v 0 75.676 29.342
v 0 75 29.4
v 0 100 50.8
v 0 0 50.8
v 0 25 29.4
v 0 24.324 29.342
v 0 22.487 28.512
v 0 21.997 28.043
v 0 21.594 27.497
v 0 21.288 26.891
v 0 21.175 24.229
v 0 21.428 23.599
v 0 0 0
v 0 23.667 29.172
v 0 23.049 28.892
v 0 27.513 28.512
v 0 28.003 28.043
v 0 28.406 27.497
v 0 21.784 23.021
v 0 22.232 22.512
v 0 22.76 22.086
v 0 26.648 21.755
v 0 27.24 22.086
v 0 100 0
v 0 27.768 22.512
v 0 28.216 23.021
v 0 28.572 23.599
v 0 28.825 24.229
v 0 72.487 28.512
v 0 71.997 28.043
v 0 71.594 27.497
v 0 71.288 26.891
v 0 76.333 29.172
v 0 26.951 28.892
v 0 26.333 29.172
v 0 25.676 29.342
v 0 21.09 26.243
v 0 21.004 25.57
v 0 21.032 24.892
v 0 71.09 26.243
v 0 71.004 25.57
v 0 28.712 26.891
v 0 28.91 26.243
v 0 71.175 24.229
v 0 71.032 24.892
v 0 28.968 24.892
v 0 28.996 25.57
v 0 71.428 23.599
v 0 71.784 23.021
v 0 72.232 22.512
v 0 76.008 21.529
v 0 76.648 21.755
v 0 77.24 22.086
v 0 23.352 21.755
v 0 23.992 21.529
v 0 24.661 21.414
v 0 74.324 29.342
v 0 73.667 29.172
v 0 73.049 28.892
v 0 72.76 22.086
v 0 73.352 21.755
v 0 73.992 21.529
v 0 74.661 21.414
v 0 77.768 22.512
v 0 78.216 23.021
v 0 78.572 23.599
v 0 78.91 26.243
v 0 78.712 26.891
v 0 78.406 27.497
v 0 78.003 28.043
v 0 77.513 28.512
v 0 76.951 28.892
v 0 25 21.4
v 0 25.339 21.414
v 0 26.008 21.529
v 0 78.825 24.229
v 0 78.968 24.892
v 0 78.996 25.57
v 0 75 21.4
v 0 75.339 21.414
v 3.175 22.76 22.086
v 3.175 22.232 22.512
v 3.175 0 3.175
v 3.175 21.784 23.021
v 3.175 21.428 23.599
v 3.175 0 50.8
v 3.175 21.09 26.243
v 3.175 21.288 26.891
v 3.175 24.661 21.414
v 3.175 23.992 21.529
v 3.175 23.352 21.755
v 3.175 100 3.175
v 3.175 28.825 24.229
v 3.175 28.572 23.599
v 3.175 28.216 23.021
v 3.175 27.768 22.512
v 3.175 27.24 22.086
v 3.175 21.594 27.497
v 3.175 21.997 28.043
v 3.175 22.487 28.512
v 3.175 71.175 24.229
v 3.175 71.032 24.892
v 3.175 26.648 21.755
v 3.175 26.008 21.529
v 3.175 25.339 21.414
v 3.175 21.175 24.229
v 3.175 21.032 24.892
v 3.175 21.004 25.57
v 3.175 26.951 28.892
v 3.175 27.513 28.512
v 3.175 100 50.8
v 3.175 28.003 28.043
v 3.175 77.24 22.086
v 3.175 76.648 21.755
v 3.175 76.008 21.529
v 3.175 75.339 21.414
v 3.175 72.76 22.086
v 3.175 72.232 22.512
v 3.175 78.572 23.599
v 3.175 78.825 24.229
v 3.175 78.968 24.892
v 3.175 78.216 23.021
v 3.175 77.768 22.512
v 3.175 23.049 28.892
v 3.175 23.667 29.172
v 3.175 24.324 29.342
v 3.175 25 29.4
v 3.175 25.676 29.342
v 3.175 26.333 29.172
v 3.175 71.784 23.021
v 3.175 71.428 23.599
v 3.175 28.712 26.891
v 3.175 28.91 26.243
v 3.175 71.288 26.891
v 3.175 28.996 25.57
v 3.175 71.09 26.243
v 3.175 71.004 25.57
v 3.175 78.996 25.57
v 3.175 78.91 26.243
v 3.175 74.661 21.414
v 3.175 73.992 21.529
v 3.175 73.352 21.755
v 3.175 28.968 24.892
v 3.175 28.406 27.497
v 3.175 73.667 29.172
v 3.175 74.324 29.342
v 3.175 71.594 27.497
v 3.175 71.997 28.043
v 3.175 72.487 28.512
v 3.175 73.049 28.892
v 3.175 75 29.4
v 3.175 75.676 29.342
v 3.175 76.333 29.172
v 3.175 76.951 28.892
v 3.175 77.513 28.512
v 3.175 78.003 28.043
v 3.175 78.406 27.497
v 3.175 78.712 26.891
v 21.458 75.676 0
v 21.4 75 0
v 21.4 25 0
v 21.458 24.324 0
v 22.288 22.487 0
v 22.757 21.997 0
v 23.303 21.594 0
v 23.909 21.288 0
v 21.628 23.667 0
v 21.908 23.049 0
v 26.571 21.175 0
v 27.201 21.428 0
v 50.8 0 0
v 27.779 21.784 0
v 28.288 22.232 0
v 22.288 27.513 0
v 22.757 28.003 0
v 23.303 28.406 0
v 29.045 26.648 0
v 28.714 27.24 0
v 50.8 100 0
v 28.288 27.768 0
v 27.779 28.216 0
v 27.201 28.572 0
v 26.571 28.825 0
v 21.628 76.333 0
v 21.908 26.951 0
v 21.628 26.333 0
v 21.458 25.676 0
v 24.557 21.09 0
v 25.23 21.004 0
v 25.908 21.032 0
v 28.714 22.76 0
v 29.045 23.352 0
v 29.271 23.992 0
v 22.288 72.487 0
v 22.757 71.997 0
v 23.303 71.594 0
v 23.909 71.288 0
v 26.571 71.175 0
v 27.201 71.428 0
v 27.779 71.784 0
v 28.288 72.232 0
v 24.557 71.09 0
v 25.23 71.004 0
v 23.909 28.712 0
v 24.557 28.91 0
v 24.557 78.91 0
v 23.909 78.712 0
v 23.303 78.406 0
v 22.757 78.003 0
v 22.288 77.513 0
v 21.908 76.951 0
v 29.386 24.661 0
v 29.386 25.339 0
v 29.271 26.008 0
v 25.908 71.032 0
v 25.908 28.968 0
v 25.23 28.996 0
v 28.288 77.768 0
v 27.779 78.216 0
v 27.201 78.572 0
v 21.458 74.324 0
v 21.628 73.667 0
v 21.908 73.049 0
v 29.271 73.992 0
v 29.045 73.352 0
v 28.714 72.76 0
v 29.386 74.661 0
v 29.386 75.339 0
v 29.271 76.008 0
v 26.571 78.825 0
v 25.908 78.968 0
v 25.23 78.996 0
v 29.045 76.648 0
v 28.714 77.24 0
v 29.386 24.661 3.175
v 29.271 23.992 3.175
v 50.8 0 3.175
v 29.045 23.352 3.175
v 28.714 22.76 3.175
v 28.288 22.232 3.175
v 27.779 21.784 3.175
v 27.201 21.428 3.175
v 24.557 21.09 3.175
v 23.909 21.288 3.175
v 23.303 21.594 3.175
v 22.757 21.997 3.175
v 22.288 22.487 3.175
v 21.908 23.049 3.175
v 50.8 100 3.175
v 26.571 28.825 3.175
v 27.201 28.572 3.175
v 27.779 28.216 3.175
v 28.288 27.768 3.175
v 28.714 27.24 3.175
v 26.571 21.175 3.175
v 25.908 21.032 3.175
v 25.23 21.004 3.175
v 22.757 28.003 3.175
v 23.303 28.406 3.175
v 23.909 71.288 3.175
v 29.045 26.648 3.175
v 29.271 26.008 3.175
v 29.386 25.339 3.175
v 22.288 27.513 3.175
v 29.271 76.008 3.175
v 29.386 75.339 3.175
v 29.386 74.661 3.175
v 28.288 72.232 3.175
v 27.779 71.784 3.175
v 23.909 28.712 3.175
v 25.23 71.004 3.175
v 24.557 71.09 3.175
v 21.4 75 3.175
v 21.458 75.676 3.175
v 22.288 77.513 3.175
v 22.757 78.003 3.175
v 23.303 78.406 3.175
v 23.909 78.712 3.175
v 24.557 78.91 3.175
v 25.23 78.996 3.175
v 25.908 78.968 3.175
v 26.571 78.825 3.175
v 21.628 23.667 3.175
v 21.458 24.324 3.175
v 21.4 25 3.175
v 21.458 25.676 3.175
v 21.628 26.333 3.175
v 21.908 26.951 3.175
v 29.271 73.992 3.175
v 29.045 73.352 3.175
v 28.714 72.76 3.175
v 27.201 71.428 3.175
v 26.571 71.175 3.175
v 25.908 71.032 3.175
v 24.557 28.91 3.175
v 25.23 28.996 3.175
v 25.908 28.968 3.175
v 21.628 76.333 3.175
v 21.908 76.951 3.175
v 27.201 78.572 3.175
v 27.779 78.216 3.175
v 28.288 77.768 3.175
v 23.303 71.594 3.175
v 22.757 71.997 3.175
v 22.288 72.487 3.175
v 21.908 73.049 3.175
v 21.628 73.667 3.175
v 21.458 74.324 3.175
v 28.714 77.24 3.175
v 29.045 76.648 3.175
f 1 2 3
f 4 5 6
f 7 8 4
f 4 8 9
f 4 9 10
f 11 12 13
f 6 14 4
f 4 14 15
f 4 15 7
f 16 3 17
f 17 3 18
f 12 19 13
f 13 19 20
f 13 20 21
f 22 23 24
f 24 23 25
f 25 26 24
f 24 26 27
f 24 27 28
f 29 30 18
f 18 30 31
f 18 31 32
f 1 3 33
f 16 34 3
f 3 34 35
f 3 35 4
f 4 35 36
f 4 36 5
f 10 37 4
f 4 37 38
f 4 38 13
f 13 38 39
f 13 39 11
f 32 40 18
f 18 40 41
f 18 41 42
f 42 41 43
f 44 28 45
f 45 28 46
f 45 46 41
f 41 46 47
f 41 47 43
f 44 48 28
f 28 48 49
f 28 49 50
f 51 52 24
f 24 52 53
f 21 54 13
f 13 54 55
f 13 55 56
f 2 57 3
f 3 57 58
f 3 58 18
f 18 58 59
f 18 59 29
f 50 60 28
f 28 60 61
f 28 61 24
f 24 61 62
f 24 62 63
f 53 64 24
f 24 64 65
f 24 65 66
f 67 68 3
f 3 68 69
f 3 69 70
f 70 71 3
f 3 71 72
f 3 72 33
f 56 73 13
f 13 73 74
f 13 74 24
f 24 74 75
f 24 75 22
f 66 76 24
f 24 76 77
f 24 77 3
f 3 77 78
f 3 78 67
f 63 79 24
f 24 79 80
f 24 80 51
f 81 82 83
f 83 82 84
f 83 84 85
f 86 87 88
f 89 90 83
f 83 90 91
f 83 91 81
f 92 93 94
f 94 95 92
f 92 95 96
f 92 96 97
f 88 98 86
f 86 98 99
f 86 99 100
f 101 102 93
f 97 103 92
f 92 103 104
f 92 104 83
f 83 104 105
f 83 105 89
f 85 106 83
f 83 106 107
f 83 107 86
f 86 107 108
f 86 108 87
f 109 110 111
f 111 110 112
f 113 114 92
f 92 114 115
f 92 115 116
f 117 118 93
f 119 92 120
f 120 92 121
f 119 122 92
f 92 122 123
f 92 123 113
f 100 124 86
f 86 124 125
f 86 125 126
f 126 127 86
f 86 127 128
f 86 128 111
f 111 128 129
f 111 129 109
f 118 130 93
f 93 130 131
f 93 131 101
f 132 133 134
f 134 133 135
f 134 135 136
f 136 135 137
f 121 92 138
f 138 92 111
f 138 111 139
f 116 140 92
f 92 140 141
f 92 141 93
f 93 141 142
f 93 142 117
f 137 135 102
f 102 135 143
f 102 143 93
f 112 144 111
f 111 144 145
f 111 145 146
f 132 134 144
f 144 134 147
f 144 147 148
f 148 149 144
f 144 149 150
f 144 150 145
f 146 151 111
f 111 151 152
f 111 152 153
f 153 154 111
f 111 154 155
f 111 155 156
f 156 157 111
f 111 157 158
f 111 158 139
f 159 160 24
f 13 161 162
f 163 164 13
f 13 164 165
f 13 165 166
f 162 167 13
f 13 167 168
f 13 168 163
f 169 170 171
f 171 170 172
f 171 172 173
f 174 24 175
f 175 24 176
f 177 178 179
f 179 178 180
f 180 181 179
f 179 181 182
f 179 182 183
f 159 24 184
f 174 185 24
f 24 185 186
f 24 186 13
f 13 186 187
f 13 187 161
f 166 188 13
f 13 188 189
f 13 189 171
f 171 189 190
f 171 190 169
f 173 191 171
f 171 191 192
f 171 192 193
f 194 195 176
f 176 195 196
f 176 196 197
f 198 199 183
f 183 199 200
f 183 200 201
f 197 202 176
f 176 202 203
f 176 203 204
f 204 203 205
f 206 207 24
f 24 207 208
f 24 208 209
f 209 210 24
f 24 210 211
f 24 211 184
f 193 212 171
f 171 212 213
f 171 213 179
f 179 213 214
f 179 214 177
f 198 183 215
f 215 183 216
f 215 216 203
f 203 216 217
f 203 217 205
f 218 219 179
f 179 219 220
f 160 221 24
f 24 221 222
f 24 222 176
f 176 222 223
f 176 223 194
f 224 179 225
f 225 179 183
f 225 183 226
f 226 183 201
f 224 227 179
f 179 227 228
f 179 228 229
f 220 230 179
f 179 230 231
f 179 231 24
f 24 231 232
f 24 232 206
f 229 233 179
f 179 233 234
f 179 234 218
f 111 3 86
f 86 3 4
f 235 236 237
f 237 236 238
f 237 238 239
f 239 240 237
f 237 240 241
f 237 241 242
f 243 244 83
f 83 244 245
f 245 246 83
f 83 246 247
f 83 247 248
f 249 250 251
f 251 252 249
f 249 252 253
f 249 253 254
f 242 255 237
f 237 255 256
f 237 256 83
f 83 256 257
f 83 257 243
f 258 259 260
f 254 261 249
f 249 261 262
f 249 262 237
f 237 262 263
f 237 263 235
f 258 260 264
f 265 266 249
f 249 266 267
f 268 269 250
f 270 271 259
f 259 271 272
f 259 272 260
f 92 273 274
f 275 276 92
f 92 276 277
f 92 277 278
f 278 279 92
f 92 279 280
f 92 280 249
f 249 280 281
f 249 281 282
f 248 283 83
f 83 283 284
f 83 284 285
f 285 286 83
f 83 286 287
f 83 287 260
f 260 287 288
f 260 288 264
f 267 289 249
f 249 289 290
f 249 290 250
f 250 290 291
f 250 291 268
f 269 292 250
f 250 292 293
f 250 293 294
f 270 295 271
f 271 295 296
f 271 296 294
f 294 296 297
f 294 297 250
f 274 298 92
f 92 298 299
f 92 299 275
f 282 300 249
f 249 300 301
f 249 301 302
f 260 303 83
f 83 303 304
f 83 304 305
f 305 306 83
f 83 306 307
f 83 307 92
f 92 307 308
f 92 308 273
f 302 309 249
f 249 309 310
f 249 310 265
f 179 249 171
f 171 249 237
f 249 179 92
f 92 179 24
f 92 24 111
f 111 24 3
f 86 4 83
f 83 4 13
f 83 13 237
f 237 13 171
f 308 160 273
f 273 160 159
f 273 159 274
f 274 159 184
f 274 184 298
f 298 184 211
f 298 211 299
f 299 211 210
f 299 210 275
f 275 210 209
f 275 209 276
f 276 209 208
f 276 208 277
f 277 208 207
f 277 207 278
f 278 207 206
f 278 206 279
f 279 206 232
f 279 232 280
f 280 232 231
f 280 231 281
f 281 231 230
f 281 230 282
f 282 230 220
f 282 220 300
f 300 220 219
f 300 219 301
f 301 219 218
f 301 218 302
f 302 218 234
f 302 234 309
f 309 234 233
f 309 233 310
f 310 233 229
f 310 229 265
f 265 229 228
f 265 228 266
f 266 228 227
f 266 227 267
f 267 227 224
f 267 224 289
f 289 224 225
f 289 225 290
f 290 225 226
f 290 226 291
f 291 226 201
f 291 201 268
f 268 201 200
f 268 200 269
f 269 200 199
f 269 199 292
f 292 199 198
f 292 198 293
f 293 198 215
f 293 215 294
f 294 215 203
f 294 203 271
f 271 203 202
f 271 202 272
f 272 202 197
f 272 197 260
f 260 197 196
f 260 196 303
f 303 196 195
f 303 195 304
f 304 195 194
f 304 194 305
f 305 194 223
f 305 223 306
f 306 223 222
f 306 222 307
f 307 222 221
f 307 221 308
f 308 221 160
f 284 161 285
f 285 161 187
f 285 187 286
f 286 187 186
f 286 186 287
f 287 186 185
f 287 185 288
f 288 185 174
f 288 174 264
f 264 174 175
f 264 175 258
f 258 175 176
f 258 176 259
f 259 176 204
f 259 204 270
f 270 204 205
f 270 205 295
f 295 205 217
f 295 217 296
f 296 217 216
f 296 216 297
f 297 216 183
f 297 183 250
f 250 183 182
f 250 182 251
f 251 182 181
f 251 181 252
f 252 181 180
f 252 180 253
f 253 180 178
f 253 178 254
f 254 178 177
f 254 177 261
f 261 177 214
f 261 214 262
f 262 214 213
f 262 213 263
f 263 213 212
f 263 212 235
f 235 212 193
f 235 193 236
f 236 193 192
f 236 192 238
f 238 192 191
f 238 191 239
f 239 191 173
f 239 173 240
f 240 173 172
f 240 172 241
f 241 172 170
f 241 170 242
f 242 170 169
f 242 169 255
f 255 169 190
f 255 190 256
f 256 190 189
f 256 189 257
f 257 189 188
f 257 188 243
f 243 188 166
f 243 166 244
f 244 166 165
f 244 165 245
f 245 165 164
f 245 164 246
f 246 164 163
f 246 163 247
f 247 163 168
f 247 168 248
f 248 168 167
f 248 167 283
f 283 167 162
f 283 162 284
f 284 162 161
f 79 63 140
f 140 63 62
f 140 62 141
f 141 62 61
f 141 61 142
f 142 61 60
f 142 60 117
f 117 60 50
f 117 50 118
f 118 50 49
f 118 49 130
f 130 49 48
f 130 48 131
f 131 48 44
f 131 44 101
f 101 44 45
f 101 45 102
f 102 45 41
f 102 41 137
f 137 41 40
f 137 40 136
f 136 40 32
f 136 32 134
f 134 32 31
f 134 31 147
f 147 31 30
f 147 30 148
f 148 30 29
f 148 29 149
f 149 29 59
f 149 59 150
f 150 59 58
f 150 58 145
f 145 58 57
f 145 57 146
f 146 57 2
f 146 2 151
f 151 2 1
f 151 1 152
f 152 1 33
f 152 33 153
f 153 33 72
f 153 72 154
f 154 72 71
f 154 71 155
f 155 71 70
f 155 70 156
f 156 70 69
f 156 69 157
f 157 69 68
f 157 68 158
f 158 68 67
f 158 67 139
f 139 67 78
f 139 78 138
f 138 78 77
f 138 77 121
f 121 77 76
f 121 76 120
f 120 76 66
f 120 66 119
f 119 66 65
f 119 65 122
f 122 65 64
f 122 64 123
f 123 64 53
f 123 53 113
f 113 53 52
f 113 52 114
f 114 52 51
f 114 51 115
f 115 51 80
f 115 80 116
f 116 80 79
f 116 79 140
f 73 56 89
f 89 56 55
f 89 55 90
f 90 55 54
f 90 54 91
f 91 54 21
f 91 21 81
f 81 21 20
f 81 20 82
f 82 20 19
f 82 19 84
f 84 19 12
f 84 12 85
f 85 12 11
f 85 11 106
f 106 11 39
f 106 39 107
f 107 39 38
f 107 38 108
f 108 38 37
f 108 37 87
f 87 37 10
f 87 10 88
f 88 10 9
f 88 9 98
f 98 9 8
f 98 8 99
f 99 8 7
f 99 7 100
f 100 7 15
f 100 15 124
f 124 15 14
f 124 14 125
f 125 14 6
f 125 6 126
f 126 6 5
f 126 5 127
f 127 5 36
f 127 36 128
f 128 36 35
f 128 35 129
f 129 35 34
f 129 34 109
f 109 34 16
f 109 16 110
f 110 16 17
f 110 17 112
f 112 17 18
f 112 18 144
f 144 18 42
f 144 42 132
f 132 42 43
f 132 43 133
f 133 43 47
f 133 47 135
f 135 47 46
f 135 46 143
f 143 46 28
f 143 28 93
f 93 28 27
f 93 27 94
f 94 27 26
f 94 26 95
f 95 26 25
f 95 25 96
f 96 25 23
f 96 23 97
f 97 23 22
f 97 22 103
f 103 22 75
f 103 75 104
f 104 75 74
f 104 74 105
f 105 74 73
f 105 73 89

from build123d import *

# Parameters (mm, degrees)
BOSS_EXTRUDE1_DEPTH = 100
CUT_EXTRUDE1_REACH  = 125.131
SKETCH2_R           = 4


with BuildPart() as part:
    # Sketch1 → Boss-Extrude1 (new body)
    with BuildSketch(Plane(origin=(0, 0, 0), x_dir=(1, 0, 0), z_dir=(0, 1, 0))):
        Polygon((0, 0), (0, -50.8), (3.175, -50.8), (3.175, -3.175), (50.8, -3.175), (50.8, 0), align=None)
    extrude(amount=BOSS_EXTRUDE1_DEPTH)

    # Sketch2 → Cut-Extrude1 (cut, up to next)
    with BuildSketch(Plane(origin=(0, 0, 0), x_dir=(-1, 0, 0), z_dir=(0, 0, -1)), mode=Mode.PRIVATE) as cut_extrude1_sk1:
        with Locations((-25.4, 75)):
            Circle(SKETCH2_R)
    cut_extrude1_tool1 = extrude(cut_extrude1_sk1.sketch, amount=-CUT_EXTRUDE1_REACH, mode=Mode.PRIVATE) & part.part
    # Sketch2 → Cut-Extrude1 (cut, up to next)
    with BuildSketch(Plane(origin=(0, 0, 0), x_dir=(-1, 0, 0), z_dir=(0, 0, -1)), mode=Mode.PRIVATE) as cut_extrude1_sk2:
        with Locations((-25.4, 25)):
            Circle(SKETCH2_R)
    cut_extrude1_tool2 = extrude(cut_extrude1_sk2.sketch, amount=-CUT_EXTRUDE1_REACH, mode=Mode.PRIVATE) & part.part
    cut_extrude1_1 = cut_extrude1_tool1.solids().sort_by_distance((25.4, 75, 0))[0]
    add(cut_extrude1_1, mode=Mode.SUBTRACT)
    cut_extrude1_2 = cut_extrude1_tool2.solids().sort_by_distance((25.4, 25, 0))[0]
    add(cut_extrude1_2, mode=Mode.SUBTRACT)
    cut_extrude1 = cut_extrude1_1 + cut_extrude1_2  # Cut-Extrude1 as one shape, for the pattern or mirror that repeats it

    # Mirror1: Cut-Extrude1 across plane
    add(cut_extrude1.mirror(Plane(origin=(0, 0, 0), x_dir=(0.7071067811865478, 0, 0.7071067811865472), z_dir=(0.7071067811865475, 0, -0.7071067811865477))), mode=Mode.SUBTRACT)


solid = part.part
